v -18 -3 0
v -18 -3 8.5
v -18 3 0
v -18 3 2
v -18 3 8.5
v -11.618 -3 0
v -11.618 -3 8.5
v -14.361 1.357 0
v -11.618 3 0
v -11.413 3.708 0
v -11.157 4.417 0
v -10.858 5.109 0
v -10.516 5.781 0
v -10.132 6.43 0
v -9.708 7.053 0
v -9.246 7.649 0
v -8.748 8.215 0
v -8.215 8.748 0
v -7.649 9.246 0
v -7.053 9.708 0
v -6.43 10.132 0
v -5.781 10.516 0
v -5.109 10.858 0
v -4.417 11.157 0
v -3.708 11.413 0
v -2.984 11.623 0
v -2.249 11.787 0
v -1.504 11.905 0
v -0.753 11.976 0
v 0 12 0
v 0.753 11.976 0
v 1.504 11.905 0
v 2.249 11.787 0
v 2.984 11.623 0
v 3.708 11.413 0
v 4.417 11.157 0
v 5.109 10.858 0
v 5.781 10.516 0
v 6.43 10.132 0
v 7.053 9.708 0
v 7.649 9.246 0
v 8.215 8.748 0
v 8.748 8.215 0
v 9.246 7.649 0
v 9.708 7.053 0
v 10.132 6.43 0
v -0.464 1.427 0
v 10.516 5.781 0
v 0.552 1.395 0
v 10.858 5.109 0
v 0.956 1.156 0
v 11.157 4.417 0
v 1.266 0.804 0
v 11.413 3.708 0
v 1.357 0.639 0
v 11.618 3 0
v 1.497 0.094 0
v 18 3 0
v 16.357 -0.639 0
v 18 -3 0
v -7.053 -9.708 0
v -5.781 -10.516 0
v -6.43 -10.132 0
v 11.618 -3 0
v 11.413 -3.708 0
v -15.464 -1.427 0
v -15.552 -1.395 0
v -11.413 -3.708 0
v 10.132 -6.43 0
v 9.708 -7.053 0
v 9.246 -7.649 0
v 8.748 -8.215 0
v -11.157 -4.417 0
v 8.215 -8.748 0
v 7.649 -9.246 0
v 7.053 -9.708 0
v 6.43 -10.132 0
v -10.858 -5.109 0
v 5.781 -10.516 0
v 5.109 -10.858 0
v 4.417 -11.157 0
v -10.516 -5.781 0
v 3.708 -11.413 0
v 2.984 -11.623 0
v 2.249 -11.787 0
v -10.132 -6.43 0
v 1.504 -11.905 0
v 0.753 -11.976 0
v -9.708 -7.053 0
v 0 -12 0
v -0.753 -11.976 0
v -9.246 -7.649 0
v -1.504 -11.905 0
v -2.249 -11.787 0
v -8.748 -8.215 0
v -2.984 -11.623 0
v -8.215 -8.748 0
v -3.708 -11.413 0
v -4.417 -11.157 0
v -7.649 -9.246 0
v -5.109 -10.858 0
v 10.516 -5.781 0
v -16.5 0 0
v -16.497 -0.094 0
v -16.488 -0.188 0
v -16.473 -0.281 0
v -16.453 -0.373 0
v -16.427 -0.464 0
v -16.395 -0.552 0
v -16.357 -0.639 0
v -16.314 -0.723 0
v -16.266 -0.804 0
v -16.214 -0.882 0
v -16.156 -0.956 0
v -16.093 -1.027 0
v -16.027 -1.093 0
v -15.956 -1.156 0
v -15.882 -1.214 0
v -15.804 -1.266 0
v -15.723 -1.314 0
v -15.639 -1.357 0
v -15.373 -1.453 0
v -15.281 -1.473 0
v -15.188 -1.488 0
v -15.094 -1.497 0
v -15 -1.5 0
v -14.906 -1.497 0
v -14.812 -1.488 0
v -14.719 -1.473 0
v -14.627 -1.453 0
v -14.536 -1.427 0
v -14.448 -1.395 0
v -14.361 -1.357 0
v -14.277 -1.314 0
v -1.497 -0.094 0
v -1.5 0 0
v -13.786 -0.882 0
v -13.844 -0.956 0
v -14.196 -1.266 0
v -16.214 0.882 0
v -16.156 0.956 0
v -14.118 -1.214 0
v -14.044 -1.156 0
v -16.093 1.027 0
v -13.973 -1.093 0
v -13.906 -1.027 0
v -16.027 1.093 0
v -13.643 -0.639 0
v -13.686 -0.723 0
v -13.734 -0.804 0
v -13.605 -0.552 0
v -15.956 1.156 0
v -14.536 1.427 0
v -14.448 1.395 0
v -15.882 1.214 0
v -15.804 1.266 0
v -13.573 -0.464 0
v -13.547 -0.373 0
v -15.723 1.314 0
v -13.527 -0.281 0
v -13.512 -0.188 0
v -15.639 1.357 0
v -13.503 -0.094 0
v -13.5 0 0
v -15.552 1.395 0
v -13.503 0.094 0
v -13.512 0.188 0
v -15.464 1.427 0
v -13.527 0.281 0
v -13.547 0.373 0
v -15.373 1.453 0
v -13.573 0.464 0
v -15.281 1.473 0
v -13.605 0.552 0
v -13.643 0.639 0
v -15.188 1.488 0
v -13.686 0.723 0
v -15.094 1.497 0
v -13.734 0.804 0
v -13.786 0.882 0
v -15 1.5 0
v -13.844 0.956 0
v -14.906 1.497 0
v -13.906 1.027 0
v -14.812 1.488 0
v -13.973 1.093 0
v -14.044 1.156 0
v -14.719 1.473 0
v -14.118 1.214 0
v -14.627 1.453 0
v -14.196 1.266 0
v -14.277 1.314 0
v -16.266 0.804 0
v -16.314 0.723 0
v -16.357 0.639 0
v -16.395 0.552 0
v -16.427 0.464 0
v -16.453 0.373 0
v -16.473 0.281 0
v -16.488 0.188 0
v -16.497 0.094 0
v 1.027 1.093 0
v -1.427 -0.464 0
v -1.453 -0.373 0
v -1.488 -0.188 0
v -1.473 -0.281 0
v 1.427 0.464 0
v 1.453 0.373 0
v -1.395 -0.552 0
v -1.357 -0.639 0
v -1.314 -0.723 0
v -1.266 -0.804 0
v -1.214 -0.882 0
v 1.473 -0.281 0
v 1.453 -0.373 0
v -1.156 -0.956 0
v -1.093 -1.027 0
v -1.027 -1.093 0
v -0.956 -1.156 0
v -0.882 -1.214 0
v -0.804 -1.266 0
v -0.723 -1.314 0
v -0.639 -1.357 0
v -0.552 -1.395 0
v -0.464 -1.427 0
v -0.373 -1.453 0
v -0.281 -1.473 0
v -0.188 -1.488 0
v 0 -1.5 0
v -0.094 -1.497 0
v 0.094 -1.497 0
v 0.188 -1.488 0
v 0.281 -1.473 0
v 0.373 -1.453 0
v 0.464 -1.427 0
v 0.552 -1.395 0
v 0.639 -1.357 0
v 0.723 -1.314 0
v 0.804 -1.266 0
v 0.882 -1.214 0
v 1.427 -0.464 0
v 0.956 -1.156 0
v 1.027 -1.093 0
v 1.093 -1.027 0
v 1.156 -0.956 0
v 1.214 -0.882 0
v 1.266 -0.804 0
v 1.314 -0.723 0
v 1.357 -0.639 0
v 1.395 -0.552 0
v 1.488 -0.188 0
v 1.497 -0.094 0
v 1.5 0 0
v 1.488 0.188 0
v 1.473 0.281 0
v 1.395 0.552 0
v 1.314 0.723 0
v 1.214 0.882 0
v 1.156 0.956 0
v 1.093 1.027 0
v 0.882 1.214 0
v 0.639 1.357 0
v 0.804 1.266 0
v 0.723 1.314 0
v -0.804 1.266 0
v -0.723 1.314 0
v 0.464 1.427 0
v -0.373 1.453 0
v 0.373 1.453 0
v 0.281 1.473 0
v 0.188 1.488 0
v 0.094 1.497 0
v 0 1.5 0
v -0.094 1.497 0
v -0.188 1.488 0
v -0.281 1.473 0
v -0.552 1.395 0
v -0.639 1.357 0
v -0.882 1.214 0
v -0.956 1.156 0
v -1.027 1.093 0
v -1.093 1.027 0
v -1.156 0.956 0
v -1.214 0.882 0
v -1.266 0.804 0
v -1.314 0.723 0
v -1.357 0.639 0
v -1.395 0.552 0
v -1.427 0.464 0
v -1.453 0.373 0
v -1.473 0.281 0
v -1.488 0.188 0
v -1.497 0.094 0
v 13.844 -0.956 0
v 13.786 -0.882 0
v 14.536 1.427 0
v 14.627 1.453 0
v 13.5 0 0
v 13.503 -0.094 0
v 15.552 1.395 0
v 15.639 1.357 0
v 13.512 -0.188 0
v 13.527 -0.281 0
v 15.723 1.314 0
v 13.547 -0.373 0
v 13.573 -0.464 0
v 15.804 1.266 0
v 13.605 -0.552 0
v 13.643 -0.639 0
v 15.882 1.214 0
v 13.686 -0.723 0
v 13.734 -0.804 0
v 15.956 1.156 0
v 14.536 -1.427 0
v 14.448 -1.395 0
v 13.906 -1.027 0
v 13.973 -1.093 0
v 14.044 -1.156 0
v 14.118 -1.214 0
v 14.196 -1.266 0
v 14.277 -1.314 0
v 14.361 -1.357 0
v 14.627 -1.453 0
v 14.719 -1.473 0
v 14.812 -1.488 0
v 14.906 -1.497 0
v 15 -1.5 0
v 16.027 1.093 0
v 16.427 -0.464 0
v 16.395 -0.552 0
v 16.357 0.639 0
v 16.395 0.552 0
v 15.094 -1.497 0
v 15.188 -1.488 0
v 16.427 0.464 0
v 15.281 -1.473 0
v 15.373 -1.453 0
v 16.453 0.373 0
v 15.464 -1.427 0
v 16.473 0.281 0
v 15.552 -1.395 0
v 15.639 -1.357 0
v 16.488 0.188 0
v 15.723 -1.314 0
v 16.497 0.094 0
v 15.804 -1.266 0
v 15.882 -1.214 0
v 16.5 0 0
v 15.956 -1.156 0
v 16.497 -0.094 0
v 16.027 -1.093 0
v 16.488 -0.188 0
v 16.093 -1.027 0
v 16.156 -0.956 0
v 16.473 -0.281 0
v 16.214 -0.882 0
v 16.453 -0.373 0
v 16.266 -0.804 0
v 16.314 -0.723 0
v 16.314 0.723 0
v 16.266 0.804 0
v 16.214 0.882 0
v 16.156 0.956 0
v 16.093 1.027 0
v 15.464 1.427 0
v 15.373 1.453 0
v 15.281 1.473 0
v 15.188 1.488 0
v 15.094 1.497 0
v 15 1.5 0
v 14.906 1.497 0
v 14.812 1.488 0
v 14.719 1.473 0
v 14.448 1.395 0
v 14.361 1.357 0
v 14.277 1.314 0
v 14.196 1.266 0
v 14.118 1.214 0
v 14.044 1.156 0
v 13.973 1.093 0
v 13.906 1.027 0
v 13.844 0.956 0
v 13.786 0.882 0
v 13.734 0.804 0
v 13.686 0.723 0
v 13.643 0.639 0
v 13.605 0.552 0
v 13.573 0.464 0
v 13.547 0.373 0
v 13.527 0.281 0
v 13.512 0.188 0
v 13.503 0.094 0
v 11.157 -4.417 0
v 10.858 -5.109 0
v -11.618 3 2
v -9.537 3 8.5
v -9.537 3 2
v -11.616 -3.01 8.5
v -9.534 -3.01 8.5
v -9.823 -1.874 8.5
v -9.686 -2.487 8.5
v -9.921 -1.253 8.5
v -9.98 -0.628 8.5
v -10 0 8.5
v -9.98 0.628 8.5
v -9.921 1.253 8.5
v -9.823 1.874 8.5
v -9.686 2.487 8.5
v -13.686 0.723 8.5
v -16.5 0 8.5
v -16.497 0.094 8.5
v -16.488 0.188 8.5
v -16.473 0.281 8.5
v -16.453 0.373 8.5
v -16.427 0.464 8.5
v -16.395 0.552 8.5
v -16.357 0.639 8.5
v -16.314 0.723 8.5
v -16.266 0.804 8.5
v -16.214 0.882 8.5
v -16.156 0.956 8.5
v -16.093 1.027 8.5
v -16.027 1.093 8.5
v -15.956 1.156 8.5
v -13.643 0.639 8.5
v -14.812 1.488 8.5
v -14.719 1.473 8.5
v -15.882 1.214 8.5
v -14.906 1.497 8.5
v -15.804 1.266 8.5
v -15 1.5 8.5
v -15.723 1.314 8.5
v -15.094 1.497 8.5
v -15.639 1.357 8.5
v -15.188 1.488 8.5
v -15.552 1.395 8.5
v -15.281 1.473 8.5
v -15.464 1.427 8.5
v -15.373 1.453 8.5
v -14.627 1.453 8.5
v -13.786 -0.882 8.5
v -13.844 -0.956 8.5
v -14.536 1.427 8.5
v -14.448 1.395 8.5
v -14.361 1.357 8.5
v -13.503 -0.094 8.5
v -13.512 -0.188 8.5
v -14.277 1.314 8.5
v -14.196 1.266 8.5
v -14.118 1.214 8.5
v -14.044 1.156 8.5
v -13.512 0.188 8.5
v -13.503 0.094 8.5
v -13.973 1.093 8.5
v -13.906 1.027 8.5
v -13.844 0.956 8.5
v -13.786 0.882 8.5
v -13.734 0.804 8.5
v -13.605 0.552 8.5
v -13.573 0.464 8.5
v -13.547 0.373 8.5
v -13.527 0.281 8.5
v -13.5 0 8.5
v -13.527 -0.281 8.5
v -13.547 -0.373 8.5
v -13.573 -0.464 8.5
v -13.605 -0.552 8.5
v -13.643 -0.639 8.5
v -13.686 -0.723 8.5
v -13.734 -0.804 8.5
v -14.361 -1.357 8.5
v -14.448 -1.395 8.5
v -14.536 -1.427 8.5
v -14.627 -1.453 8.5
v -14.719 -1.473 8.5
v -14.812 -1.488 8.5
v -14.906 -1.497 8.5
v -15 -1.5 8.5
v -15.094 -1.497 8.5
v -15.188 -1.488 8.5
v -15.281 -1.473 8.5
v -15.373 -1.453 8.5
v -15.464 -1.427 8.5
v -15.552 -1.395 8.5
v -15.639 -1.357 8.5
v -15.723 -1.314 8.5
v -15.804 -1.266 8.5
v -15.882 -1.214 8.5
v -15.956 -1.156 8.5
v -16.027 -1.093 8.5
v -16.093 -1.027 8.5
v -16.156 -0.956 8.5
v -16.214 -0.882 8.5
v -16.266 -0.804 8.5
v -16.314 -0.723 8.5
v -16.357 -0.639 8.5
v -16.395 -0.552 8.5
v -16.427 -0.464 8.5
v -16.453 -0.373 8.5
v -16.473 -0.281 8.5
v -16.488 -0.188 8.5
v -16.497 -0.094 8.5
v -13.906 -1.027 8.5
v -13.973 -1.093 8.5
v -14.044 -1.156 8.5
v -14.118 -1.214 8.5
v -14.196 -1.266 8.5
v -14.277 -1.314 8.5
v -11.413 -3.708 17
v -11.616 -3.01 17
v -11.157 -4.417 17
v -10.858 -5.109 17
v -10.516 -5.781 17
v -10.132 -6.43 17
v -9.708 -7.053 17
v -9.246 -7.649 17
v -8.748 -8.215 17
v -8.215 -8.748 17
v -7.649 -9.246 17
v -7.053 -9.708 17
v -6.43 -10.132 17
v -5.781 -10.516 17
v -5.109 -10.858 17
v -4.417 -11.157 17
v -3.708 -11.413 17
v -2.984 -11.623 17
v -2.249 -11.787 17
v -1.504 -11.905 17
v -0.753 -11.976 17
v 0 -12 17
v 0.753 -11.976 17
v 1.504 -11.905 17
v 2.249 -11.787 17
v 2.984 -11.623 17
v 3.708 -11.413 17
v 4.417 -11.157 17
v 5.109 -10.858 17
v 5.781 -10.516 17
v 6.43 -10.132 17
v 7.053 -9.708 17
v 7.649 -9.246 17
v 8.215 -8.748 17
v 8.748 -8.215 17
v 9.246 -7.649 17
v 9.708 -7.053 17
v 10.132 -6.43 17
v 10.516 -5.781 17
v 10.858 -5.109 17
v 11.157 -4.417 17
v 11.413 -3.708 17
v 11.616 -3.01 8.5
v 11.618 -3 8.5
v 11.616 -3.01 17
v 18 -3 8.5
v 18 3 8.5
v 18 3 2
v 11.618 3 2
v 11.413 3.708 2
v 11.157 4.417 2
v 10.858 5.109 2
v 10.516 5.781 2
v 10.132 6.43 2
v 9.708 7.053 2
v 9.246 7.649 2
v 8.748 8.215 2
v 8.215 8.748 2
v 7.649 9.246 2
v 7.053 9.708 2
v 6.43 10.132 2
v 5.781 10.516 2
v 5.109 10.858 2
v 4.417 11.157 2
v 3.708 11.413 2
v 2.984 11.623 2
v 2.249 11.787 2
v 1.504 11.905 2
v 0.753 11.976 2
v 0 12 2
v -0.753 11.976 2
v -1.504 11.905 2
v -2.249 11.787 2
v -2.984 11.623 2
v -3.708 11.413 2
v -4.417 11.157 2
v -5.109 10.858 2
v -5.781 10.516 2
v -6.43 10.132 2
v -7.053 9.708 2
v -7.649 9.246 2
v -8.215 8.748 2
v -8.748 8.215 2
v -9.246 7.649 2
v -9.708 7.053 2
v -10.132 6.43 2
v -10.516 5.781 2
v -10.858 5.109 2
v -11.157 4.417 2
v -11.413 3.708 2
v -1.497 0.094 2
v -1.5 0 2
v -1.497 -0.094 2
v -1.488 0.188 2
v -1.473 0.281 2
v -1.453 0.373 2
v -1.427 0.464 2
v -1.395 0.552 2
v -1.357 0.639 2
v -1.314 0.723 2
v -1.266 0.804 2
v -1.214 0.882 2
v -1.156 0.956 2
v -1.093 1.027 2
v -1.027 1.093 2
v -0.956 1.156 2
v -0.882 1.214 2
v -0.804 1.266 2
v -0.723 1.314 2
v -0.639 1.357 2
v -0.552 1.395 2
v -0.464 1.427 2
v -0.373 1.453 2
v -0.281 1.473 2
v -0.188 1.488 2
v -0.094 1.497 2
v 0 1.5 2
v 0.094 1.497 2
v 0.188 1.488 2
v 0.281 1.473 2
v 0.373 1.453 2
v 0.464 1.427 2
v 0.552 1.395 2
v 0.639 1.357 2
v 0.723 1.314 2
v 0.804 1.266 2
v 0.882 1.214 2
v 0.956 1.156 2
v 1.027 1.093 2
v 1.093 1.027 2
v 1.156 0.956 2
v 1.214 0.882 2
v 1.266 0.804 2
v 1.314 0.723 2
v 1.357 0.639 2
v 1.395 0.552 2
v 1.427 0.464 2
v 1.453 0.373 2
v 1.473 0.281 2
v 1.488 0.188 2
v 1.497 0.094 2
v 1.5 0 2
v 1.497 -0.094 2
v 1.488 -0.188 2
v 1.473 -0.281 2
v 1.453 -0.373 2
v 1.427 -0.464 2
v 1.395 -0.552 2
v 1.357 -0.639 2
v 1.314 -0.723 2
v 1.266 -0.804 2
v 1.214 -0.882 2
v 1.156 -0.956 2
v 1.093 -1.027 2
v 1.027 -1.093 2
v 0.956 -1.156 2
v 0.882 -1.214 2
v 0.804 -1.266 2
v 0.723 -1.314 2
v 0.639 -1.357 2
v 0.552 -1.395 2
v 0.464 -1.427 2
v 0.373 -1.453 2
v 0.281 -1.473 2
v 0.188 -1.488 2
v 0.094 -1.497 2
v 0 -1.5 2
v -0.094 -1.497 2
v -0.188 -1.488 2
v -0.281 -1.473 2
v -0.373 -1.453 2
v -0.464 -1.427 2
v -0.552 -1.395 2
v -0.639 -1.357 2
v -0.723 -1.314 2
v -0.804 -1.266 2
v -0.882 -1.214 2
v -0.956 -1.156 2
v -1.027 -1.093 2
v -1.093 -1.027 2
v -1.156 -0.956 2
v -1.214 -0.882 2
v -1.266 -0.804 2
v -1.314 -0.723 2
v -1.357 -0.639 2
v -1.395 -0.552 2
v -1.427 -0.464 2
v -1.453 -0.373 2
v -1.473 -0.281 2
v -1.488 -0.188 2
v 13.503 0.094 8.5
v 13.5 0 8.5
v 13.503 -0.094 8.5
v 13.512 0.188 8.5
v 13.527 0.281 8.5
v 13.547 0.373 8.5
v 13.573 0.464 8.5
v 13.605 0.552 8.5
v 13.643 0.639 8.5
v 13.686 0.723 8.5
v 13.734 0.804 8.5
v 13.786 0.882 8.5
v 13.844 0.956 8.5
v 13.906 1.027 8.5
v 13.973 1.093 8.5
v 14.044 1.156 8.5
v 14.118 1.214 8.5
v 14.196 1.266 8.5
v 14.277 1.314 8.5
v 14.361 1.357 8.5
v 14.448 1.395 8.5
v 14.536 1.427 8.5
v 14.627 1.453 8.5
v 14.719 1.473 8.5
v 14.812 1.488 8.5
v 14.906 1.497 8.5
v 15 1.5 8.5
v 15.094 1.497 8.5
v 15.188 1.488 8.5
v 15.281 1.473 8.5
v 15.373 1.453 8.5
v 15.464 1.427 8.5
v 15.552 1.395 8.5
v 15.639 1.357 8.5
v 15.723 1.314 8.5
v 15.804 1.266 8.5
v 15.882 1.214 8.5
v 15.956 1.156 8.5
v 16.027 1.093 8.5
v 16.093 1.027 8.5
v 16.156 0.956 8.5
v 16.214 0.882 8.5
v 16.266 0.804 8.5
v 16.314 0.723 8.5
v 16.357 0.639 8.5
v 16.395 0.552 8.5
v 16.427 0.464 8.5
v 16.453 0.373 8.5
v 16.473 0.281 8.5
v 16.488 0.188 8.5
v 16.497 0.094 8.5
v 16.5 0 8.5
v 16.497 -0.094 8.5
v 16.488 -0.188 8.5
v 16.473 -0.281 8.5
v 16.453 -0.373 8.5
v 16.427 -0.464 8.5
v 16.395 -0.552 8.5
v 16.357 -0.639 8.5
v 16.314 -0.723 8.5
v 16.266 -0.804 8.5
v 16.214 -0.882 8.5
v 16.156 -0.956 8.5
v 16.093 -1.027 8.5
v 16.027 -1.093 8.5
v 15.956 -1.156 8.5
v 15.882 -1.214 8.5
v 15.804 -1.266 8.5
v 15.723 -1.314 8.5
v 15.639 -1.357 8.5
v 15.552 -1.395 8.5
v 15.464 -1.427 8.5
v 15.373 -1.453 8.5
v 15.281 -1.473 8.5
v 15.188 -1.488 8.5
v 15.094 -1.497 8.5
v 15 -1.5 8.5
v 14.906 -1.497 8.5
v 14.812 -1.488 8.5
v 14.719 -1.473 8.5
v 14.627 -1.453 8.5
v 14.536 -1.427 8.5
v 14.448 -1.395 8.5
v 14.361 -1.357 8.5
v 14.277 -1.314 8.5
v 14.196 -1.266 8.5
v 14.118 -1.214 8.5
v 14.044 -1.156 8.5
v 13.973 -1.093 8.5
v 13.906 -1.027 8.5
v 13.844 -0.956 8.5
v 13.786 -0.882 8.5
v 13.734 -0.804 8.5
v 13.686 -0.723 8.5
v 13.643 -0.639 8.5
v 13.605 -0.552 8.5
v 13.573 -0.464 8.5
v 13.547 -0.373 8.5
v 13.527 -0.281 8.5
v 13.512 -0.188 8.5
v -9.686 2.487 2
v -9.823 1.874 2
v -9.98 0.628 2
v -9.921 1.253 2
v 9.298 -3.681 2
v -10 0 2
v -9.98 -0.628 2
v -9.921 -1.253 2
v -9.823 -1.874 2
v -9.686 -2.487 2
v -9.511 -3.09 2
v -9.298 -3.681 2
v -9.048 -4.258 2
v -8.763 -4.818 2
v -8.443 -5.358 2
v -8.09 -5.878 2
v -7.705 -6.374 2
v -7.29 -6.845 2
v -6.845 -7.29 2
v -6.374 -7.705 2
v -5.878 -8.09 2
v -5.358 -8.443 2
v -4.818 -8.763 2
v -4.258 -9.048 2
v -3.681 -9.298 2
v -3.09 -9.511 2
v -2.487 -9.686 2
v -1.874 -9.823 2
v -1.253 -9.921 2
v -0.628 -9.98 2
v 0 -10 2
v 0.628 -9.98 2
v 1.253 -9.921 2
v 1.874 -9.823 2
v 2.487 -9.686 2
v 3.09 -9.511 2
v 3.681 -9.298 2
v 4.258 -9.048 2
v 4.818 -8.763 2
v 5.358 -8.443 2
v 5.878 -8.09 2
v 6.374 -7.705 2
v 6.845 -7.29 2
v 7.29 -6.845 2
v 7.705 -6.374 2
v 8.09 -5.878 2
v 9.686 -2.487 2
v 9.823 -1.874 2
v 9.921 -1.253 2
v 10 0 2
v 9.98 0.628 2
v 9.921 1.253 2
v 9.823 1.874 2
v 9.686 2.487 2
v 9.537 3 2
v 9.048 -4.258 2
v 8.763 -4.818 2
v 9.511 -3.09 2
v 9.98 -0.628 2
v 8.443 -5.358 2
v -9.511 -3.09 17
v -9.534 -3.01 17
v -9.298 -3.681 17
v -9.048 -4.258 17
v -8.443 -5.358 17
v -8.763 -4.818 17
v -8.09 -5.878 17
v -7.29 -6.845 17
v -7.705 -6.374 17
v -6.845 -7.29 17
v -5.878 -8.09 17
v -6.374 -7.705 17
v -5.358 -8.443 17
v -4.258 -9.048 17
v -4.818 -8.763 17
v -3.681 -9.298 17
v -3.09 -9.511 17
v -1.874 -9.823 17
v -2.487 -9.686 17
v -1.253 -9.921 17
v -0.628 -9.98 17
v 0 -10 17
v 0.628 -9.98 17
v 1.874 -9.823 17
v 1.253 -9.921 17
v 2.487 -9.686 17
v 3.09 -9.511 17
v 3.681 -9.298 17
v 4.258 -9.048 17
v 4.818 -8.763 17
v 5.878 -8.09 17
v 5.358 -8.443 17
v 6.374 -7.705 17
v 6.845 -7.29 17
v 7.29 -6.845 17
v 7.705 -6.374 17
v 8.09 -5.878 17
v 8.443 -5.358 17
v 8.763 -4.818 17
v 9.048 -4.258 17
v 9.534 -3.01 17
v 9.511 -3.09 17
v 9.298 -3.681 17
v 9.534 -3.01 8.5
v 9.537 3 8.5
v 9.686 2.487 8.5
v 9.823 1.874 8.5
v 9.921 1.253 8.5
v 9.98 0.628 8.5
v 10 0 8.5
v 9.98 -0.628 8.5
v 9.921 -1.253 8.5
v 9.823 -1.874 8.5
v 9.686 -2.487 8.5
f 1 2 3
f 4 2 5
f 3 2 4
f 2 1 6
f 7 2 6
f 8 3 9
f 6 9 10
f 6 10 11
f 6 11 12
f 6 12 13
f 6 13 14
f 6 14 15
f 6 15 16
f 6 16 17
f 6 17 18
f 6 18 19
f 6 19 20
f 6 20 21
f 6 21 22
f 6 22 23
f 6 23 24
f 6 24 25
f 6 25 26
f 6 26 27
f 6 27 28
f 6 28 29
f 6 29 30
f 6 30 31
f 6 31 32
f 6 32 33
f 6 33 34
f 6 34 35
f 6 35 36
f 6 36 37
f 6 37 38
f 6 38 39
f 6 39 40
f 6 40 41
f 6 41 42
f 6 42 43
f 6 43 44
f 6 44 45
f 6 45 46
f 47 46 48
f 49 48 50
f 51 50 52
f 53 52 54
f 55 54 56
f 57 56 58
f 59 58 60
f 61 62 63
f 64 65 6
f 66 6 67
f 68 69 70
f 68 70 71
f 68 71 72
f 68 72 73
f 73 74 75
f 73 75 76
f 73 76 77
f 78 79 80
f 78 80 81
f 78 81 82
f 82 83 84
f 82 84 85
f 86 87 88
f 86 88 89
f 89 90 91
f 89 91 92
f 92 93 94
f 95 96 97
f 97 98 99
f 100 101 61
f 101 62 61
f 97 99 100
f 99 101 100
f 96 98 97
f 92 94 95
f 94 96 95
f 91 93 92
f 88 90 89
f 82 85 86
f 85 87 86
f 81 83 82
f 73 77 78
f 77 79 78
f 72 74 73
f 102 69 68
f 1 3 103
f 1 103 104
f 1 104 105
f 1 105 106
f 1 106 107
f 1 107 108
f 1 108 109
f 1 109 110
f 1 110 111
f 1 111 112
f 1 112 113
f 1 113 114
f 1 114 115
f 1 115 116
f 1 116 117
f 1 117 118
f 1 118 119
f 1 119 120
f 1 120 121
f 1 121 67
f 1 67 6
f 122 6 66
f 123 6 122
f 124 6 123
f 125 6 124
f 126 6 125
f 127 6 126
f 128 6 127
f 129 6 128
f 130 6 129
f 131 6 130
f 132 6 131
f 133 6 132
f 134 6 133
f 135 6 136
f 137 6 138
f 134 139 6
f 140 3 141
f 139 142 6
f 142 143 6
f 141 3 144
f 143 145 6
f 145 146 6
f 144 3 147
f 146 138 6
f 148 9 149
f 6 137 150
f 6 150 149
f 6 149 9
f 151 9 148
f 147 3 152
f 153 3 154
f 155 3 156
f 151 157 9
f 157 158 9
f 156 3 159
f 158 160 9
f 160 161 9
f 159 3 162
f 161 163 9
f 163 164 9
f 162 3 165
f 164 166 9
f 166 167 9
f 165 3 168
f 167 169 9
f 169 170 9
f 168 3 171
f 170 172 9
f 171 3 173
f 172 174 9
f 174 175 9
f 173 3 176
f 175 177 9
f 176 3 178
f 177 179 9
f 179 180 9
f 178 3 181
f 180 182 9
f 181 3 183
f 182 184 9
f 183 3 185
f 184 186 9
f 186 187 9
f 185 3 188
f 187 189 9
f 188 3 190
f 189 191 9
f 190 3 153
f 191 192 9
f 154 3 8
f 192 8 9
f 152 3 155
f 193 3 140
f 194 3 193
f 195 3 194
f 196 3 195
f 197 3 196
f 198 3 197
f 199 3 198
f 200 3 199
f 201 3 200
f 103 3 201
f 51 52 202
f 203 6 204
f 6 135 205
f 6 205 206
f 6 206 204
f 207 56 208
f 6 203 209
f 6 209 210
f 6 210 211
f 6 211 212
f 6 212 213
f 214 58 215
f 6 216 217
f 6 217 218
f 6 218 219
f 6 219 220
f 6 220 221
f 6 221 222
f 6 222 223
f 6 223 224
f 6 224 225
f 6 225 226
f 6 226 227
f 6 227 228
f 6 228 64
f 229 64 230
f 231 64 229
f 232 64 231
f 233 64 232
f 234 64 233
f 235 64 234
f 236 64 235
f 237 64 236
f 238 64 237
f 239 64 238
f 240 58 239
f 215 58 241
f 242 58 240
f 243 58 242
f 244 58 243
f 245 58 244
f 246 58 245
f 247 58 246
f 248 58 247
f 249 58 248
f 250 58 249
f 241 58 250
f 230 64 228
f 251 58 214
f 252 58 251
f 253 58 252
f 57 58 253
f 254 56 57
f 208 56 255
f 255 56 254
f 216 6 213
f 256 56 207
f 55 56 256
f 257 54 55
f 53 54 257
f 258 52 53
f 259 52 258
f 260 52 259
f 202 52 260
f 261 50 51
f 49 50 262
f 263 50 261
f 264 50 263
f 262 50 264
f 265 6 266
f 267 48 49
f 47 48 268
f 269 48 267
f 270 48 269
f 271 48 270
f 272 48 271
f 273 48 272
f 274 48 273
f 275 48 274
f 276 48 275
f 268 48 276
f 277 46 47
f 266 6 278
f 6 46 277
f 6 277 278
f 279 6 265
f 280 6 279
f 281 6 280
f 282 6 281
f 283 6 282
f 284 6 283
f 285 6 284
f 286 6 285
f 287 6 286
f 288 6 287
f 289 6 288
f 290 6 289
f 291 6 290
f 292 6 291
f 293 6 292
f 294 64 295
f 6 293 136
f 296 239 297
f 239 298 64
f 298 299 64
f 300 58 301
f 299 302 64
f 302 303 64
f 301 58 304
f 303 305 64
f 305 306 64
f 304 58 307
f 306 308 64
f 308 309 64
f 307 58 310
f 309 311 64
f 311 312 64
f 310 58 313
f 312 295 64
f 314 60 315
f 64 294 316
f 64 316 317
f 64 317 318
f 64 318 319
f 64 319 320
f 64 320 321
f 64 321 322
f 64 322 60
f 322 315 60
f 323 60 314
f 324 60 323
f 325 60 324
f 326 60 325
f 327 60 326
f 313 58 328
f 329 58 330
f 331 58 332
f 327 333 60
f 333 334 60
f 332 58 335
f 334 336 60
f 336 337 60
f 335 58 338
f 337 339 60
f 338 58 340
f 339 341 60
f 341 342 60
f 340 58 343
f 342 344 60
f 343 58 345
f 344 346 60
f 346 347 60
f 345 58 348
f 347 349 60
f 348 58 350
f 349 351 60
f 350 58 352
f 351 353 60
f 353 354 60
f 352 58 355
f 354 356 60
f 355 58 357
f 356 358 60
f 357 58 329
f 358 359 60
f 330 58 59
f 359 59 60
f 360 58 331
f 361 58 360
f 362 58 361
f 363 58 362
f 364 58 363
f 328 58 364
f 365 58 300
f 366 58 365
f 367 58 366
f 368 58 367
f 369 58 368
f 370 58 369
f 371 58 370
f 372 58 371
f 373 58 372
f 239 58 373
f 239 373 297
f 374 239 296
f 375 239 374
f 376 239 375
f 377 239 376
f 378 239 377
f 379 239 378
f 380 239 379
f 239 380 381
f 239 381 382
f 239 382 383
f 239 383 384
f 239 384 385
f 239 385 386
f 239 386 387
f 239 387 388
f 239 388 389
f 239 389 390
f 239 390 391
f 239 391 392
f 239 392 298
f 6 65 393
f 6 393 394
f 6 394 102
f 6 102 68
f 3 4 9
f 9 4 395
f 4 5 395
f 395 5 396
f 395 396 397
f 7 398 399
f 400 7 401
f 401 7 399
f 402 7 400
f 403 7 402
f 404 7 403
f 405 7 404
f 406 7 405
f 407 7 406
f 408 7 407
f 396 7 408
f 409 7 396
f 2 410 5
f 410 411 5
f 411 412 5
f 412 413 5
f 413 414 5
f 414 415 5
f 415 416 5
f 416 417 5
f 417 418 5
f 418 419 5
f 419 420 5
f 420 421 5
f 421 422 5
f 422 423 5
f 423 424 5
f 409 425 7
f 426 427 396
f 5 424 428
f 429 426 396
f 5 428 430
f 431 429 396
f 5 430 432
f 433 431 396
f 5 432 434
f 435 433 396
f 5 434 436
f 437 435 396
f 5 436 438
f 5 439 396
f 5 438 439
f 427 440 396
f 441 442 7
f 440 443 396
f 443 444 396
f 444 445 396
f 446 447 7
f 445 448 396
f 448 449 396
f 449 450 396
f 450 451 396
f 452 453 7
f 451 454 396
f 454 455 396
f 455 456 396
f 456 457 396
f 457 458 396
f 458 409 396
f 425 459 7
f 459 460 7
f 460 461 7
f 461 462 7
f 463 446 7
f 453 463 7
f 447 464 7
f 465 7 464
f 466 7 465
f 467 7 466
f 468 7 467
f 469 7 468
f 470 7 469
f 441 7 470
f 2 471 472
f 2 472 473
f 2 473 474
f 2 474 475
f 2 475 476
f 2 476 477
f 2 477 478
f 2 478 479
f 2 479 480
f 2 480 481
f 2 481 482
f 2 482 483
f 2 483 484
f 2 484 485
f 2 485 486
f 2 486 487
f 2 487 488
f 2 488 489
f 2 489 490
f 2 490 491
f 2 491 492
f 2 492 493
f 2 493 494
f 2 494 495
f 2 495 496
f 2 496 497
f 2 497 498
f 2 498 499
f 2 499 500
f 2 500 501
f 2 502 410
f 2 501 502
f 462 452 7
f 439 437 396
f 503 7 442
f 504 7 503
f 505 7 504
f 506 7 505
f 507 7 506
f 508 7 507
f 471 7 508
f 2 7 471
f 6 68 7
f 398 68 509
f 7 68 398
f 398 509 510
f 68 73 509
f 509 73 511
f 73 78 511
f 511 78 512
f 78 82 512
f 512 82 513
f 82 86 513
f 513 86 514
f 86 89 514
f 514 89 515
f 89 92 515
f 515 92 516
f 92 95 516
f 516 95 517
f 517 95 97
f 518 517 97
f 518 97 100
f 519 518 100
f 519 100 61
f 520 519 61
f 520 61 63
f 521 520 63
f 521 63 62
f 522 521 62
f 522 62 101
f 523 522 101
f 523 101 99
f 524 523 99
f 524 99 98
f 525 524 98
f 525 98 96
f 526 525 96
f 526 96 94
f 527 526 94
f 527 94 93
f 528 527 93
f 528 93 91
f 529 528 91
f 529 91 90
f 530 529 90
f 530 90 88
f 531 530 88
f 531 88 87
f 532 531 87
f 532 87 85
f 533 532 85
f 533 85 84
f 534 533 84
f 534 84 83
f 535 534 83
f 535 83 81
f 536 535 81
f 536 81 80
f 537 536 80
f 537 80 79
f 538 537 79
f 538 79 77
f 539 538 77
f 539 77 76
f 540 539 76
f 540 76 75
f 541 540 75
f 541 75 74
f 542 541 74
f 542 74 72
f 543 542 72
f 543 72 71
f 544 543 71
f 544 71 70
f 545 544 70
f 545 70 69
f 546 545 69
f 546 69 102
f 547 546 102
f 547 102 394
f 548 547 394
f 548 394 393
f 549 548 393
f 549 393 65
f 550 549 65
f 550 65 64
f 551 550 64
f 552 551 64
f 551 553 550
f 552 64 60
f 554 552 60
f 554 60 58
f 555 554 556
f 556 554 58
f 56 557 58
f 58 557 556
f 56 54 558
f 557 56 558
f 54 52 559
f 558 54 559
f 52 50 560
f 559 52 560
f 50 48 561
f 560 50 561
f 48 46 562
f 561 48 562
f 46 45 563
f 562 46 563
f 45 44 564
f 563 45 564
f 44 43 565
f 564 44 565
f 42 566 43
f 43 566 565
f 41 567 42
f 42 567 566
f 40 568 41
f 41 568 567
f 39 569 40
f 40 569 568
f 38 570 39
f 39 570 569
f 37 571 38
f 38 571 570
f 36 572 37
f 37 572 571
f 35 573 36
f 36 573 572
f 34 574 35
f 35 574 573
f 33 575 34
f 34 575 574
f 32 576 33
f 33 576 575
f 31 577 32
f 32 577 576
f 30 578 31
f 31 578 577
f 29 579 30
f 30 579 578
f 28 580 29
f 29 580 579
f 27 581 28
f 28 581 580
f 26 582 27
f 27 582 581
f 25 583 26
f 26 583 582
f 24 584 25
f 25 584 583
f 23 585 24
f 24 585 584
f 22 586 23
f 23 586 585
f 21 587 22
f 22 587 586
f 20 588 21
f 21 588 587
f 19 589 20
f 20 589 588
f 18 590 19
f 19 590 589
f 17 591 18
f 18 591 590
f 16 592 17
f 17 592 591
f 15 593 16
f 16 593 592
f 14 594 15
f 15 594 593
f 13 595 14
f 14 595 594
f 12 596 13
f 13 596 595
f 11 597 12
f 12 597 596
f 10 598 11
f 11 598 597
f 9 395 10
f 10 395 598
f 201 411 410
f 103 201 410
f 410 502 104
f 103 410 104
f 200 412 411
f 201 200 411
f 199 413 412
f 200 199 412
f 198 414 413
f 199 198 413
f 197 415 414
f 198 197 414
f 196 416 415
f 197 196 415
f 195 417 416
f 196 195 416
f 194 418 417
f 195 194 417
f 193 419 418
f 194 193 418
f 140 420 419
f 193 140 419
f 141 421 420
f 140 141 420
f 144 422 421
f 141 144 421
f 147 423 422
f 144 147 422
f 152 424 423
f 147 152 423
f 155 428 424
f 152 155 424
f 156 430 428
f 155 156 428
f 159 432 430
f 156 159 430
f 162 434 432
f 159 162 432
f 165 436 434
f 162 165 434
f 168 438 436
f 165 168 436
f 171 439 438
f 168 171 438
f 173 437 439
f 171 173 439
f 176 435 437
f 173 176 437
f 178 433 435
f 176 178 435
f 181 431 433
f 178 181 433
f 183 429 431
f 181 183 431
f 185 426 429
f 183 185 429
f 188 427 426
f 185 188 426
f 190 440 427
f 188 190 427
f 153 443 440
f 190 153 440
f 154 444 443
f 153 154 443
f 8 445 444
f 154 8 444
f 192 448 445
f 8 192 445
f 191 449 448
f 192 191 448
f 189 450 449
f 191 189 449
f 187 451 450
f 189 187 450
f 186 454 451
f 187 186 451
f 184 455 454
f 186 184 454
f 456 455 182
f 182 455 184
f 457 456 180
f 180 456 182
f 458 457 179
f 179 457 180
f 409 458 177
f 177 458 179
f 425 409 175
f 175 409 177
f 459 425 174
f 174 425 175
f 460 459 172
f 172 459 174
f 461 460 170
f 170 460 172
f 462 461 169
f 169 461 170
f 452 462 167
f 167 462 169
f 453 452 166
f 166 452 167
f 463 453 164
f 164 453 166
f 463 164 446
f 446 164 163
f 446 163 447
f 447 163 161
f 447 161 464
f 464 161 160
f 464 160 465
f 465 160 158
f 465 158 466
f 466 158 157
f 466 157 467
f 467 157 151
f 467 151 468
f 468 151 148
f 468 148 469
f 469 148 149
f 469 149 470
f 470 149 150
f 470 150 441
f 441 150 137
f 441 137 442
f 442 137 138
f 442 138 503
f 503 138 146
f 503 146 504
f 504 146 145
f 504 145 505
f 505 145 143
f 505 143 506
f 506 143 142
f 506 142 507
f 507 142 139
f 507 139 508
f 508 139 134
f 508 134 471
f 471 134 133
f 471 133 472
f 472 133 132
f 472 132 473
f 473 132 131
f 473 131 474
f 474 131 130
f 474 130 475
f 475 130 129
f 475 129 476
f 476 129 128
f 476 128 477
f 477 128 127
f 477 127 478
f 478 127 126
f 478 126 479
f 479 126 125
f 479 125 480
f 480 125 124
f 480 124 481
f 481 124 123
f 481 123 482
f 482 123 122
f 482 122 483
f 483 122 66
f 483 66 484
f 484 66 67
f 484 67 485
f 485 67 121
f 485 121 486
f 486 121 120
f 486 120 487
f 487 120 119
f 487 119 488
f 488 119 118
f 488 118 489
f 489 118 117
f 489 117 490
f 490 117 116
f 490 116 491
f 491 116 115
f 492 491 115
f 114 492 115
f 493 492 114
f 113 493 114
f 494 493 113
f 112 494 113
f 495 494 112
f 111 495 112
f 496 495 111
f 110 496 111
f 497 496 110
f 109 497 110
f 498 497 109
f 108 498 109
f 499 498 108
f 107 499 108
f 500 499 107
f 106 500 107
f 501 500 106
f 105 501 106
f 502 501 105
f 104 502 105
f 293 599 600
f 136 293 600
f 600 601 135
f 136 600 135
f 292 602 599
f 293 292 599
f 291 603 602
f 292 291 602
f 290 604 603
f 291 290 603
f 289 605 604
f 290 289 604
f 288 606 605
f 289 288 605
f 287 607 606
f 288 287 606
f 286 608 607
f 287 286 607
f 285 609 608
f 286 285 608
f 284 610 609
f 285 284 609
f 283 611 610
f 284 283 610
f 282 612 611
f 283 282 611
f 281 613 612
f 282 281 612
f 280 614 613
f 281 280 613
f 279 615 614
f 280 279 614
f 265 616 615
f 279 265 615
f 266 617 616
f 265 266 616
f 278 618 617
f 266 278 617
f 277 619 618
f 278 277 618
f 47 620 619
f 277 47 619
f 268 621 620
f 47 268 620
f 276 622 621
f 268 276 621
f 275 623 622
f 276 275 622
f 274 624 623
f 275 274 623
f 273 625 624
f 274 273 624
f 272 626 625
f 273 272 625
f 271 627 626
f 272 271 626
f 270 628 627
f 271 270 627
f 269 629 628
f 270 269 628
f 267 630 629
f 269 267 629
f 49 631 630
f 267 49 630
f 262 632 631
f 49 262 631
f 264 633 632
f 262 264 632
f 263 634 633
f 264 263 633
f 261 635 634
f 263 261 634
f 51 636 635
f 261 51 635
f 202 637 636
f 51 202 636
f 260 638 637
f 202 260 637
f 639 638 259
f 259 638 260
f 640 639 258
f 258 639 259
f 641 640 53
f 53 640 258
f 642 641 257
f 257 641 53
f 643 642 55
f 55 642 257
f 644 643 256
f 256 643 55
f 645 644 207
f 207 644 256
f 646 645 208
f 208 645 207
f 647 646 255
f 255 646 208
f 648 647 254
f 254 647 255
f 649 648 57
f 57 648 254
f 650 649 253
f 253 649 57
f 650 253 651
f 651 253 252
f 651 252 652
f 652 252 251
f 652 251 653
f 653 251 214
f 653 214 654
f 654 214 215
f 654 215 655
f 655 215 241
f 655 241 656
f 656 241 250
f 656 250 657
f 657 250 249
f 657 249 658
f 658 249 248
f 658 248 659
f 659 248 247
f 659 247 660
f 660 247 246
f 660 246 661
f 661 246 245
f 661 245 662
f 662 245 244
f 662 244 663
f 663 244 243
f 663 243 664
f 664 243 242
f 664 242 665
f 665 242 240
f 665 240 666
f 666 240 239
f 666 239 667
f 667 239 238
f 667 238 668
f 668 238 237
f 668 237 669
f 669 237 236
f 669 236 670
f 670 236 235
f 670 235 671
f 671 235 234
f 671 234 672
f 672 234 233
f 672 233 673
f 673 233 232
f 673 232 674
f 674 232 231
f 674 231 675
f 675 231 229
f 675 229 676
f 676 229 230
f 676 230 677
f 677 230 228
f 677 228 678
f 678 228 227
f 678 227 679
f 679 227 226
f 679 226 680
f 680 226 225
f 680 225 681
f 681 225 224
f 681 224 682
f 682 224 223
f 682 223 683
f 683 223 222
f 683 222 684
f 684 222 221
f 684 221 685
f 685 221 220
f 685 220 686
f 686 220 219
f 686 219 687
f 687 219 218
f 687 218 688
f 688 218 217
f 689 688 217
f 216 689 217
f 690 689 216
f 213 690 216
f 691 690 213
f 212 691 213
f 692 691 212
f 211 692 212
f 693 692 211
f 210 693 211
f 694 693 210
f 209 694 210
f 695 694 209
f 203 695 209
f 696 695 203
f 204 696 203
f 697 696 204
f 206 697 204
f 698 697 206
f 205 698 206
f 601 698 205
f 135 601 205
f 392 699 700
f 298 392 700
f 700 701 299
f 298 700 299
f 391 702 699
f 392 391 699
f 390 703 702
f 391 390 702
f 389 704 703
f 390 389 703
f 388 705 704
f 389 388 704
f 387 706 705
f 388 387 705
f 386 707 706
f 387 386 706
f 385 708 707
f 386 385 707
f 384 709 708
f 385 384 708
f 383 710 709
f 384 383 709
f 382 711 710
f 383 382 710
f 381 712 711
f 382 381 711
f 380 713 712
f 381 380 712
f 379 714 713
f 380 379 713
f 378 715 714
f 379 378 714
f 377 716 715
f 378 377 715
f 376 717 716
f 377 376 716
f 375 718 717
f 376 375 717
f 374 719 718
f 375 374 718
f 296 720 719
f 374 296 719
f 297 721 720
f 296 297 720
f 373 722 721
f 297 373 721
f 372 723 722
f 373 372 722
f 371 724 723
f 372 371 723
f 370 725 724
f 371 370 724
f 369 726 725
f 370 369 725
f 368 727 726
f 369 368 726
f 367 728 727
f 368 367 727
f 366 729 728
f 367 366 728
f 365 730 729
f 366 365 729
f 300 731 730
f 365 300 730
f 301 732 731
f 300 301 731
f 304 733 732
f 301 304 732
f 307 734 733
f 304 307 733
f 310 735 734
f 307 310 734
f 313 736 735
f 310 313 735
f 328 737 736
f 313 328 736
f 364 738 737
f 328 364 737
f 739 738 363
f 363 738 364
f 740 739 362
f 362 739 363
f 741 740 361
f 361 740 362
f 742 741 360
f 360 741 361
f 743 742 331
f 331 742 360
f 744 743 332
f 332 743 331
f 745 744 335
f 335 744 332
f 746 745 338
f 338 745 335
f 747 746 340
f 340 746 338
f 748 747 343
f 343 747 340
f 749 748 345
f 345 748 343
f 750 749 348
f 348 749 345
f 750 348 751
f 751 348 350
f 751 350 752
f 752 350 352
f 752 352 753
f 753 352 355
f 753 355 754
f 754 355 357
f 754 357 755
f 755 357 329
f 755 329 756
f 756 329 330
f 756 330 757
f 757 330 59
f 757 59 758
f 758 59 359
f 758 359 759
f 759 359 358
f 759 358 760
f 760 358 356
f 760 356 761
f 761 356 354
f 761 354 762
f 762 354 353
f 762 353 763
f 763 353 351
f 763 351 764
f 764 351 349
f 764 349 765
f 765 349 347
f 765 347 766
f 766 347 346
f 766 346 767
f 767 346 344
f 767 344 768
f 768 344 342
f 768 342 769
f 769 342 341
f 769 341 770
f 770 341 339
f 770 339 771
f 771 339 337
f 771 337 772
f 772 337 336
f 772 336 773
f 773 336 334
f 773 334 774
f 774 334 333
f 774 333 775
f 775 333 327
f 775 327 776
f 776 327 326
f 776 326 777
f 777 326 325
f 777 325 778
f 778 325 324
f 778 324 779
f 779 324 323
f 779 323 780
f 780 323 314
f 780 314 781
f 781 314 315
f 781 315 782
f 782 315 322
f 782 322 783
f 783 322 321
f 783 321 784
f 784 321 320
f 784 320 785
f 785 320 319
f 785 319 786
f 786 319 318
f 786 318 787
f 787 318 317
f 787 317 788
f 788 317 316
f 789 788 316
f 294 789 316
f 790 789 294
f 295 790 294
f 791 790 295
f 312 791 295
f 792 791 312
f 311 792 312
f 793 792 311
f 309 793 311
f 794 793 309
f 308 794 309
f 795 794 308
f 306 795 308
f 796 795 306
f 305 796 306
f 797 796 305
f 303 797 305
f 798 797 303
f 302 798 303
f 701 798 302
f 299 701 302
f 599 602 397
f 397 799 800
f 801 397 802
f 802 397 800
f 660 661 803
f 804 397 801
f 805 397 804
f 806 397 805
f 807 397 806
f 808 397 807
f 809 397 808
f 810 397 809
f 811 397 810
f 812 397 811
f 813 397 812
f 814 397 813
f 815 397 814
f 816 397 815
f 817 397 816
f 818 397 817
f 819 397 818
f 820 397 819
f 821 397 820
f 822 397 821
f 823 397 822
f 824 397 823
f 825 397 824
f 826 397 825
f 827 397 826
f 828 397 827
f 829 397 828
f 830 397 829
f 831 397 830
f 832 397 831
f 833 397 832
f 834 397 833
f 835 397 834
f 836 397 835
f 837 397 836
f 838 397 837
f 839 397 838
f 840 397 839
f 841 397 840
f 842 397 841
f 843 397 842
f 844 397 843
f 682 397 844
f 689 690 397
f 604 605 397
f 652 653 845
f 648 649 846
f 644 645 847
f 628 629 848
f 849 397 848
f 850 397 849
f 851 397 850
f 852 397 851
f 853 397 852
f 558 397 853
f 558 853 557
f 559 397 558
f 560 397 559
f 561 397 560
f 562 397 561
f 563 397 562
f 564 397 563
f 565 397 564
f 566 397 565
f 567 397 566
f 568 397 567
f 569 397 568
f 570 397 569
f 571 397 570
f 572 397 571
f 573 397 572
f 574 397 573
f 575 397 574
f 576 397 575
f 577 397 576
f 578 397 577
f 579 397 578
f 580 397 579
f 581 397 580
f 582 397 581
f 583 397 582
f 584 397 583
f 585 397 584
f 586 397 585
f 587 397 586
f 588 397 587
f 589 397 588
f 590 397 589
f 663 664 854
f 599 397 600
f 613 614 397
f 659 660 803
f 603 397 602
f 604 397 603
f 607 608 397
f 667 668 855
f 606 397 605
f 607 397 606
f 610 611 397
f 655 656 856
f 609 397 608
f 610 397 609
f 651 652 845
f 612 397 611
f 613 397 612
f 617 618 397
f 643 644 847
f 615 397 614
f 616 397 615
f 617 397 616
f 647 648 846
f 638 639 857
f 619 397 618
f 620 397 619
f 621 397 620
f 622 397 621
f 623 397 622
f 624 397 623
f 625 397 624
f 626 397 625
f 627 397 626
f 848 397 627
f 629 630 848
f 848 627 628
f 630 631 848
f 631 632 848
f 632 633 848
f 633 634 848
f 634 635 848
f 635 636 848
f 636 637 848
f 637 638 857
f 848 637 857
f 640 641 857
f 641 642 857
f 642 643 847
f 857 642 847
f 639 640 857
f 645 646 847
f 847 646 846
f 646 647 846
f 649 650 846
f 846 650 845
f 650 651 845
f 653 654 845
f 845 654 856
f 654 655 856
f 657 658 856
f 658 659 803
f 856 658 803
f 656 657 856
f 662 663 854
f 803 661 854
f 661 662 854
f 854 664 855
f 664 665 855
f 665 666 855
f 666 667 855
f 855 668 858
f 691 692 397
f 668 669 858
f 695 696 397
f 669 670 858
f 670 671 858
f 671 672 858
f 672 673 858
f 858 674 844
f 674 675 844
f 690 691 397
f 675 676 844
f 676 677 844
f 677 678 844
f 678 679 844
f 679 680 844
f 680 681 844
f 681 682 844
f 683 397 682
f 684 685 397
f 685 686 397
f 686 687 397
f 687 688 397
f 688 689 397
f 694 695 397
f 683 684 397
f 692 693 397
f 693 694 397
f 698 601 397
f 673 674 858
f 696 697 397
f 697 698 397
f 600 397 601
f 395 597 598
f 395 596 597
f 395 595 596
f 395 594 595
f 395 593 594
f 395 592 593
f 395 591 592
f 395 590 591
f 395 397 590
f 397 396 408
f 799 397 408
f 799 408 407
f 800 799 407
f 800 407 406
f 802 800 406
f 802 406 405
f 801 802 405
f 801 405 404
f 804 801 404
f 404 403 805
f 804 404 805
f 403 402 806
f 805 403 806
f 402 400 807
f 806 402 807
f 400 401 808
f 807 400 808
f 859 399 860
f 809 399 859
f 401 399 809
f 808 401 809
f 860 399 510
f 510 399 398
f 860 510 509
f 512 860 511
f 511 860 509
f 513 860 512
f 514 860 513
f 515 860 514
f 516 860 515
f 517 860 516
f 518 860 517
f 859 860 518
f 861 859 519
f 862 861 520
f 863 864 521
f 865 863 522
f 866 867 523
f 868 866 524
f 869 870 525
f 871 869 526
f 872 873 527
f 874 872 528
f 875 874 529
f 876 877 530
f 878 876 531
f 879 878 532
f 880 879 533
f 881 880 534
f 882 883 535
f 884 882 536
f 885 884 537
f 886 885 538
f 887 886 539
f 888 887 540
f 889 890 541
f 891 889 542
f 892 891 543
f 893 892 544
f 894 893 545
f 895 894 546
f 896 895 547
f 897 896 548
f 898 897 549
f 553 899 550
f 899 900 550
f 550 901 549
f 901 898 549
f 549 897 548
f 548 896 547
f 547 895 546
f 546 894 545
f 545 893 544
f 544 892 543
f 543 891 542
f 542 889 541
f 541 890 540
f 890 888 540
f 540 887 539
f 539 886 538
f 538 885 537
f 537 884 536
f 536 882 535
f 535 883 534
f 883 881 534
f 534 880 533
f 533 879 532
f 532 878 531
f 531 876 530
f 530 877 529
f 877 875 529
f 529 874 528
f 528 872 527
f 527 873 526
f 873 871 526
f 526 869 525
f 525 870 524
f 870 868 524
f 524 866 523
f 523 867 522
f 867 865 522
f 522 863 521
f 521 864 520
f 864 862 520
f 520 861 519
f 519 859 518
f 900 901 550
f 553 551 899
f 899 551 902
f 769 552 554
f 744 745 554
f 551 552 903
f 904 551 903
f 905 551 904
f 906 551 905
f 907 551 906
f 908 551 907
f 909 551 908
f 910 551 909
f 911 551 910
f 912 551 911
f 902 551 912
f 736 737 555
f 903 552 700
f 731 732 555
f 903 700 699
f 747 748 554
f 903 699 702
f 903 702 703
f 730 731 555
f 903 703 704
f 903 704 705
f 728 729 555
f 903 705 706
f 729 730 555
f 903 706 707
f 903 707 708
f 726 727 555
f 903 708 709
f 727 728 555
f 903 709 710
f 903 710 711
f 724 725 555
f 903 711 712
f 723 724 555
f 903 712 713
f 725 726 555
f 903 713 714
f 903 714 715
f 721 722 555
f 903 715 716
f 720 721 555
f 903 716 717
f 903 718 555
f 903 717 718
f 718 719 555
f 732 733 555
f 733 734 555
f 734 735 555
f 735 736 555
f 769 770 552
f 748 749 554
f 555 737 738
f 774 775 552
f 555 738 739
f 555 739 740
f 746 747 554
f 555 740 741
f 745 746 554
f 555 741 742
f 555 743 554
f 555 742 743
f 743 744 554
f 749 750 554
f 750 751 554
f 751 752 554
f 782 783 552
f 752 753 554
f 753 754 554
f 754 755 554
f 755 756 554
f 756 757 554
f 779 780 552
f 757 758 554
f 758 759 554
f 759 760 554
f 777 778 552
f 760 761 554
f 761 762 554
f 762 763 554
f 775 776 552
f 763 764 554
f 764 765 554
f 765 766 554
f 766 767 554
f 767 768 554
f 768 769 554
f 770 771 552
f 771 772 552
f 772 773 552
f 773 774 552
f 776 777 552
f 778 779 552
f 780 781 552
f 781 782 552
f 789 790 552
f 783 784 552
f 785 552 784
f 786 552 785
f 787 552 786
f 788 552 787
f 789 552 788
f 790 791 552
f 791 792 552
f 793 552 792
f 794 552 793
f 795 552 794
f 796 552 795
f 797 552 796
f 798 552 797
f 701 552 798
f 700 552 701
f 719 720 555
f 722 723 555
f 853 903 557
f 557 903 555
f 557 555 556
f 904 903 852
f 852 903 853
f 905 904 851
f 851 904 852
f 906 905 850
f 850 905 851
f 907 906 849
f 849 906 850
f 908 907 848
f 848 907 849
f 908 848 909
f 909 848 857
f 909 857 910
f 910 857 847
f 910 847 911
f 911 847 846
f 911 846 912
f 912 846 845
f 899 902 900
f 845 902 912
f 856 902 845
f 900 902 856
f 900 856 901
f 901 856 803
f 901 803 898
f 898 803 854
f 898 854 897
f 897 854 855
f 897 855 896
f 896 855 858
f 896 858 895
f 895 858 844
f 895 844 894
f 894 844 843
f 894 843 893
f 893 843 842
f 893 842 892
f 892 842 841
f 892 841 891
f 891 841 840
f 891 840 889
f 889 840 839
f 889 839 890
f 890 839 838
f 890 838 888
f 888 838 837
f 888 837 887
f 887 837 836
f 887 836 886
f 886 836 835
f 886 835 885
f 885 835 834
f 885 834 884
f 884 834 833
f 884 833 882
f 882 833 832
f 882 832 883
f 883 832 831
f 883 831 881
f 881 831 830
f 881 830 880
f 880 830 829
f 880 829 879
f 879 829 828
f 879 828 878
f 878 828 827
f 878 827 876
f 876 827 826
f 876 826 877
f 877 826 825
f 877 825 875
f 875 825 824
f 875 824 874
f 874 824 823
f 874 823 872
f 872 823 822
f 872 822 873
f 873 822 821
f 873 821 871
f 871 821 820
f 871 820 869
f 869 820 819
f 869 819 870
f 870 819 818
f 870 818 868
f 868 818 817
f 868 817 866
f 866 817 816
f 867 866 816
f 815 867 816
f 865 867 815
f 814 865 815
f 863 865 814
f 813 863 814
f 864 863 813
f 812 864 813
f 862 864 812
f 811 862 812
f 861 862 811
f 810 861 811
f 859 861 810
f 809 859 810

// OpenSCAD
$fn=100;

filament_w=3;
h=15;
r=10;
wall_w=2;
or=r+wall_w;
oh=h+wall_w;

handle_w=6;

inf=1000;

difference() {
    union() {
        cylinder(h = oh, r = or);
        translate([0,0,oh/2]) {
            difference() {
                cube([2*(or+6),handle_w,oh], center = true);
                for(i=[-1,1]) {
                    translate([i*(or+3),0,0])
                        rotate([0,0,0])
                            translate([0,0,-inf/2])
                                cylinder(h=inf, r=3/2);
                }
            }
        }
    }
    translate([0,0,2]) { cylinder(h = oh, r = r); }
    translate([0,0,-inf/2]) { cylinder(h = inf, r = filament_w/2); }
    // cut in "half"
    translate([-inf/2,-(handle_w/2)-.01,oh/2]) cube([inf,11,inf]);
    translate([-inf/2,handle_w/2,wall_w]) cube([inf,inf,inf]);
}
